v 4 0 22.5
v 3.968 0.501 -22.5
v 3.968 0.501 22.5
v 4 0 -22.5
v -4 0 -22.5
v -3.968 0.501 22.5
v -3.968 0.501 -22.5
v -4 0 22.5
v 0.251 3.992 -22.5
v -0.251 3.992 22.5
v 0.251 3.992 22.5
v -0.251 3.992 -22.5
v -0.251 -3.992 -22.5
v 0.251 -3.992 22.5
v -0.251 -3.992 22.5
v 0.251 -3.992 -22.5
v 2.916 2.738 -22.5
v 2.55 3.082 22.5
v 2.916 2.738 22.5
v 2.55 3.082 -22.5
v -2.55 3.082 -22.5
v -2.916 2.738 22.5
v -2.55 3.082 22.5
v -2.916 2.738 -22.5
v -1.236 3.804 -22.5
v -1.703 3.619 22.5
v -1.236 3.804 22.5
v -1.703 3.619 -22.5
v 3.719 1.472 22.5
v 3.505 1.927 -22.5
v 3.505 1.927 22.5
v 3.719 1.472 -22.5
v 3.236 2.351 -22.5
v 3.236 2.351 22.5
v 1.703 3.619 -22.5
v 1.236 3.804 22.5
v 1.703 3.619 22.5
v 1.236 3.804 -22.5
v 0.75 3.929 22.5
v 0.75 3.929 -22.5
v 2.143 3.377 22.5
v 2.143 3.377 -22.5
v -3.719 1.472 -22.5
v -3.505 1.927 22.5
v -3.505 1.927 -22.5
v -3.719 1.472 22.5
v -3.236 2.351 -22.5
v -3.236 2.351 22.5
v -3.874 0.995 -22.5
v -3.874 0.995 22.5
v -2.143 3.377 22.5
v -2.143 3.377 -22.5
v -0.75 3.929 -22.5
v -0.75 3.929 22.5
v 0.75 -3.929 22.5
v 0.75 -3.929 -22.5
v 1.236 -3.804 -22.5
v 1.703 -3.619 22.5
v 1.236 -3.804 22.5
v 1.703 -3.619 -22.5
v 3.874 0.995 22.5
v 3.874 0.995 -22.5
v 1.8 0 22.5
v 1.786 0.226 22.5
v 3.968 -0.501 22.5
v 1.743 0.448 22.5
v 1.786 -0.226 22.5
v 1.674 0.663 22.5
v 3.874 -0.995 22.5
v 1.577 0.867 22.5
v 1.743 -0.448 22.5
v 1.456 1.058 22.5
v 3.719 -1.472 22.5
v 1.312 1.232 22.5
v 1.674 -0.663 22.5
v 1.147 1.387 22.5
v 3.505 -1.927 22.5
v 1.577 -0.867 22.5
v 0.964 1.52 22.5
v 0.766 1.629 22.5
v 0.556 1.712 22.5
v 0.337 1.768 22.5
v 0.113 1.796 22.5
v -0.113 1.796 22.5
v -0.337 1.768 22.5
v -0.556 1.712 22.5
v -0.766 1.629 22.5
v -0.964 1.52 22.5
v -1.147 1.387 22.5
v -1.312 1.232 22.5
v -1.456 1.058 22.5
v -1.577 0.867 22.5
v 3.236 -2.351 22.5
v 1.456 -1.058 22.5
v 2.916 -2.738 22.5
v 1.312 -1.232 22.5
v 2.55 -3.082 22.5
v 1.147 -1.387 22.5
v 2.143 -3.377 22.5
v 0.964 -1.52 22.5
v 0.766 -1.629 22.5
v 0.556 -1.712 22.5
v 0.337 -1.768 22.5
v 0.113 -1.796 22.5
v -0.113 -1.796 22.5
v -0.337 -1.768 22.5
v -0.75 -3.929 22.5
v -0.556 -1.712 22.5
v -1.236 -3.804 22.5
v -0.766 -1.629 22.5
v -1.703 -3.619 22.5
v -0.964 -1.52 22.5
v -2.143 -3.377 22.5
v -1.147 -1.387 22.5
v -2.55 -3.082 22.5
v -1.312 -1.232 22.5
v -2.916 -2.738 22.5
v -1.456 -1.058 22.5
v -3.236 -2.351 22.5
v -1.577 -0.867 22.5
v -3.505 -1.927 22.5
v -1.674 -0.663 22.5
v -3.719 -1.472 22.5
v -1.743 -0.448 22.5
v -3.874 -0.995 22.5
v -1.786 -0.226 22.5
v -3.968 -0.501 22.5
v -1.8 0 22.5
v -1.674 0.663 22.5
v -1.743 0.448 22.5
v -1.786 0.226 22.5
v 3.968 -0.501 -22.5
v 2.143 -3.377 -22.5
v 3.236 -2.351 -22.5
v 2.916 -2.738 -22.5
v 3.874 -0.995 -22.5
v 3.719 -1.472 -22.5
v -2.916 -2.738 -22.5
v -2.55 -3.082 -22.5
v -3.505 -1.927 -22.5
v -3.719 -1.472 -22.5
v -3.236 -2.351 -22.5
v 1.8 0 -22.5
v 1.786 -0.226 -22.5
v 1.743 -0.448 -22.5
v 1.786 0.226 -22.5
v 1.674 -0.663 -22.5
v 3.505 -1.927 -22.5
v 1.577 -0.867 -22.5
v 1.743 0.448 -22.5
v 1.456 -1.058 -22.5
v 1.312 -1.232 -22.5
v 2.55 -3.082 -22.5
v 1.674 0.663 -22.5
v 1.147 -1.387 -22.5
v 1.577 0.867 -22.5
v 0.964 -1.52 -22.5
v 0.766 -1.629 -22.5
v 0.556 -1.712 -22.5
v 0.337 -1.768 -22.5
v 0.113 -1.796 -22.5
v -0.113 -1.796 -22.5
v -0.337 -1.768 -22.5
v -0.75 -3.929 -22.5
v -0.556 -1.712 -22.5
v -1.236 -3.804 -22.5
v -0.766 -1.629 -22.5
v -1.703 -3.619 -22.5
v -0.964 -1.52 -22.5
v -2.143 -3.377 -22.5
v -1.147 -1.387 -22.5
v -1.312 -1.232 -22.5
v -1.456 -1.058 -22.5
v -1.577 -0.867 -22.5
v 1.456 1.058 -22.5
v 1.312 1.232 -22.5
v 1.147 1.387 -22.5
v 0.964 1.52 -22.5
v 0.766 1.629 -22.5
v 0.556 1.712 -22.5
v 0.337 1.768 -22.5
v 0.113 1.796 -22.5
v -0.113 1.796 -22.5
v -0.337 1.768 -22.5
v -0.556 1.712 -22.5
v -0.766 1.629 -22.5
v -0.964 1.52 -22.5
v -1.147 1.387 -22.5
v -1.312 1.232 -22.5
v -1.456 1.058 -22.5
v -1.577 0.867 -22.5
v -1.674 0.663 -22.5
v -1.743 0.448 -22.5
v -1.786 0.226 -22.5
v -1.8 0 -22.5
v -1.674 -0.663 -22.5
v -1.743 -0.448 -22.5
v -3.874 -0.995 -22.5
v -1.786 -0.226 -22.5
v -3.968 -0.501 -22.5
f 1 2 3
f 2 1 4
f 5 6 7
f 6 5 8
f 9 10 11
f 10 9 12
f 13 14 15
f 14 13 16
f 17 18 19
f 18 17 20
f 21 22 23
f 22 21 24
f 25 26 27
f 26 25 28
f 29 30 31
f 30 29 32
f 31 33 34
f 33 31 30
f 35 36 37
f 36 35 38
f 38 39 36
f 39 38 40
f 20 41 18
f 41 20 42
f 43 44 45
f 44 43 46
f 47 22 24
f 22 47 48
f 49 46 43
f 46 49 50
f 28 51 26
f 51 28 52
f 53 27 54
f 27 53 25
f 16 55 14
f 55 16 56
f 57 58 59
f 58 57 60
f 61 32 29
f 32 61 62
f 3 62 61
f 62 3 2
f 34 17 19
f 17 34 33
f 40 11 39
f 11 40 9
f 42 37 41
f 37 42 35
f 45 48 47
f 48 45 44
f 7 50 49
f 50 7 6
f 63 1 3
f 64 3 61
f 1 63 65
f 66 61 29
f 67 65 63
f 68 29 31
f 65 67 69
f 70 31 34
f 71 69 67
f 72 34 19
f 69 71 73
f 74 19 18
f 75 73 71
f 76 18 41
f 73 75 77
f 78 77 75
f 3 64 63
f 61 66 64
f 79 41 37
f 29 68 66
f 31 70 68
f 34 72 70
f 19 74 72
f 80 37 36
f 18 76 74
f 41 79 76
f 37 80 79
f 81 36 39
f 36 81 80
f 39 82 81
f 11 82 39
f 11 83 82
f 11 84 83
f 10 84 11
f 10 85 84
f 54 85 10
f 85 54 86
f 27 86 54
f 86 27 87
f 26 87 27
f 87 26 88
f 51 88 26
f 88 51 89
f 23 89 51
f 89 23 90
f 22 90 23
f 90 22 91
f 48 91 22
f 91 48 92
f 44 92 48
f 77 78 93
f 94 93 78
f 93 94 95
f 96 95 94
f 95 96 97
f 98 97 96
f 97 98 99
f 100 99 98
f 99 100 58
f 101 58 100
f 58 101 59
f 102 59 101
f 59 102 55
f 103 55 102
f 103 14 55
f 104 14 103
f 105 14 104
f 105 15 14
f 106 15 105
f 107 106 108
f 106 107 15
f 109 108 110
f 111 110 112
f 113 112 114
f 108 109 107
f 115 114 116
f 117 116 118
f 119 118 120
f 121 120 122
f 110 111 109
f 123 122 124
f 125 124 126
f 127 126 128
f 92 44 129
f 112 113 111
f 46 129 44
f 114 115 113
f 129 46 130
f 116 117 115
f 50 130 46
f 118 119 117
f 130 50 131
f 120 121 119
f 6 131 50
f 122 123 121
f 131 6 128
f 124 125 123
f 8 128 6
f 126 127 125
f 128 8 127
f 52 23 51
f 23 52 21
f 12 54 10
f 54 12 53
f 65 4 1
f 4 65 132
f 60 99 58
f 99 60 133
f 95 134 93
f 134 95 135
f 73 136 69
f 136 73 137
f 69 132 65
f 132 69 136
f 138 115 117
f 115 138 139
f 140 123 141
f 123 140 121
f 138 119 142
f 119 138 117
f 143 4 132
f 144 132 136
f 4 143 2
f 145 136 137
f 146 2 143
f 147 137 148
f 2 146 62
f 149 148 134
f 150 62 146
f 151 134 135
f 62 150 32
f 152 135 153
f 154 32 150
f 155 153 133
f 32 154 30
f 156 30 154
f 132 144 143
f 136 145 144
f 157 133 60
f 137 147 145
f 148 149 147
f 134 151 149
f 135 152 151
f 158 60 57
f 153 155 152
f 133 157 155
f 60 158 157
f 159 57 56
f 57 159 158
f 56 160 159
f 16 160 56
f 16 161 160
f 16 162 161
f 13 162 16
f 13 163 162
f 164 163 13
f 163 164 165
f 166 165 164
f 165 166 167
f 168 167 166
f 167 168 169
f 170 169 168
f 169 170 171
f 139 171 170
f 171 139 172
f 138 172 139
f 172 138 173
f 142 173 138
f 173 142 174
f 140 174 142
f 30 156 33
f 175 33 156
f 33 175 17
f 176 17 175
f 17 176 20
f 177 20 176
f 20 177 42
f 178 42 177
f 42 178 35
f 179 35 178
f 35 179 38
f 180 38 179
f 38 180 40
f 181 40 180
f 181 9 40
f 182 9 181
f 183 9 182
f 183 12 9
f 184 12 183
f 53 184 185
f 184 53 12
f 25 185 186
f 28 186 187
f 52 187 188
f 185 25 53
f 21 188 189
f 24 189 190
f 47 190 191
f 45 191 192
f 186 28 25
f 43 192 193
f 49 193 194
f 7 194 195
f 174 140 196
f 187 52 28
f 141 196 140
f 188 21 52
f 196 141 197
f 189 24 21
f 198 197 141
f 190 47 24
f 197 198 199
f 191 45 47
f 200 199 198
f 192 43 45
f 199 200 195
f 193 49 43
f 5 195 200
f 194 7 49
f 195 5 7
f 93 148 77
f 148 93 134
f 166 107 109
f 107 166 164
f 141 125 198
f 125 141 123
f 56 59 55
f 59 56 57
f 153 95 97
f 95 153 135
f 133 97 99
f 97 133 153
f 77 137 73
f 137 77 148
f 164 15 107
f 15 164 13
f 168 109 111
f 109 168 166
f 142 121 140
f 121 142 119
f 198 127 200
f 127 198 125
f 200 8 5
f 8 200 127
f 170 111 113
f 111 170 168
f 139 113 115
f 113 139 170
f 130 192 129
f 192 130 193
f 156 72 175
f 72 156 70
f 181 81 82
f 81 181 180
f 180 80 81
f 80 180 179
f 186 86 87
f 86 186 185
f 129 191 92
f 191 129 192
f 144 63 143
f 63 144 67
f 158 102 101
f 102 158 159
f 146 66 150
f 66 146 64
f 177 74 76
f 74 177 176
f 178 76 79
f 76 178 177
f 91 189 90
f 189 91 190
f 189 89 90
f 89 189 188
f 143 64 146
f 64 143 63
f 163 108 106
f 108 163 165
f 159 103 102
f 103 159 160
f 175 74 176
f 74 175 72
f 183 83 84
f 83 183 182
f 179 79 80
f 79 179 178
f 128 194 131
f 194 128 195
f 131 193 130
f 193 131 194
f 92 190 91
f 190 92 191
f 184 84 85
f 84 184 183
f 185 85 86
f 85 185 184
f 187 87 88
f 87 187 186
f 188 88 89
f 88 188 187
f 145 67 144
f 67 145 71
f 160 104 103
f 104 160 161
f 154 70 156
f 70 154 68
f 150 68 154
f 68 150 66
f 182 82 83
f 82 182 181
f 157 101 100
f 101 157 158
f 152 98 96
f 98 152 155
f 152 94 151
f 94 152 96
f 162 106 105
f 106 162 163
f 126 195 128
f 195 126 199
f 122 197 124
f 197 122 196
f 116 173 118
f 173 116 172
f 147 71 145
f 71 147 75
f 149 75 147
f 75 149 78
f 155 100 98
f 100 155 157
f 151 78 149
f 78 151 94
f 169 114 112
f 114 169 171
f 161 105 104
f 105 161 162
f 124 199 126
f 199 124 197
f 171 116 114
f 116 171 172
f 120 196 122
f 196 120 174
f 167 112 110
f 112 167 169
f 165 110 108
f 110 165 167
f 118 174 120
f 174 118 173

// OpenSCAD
$fn = 50;


difference() {
	union() {
		translate(v = [0, 0, -22.5000000000]) {
			cylinder(h = 45, r = 4.0000000000);
		}
	}
	union() {
		translate(v = [0, 0, -100.0000000000]) {
			cylinder(h = 200, r = 1.8000000000);
		}
	}
}
